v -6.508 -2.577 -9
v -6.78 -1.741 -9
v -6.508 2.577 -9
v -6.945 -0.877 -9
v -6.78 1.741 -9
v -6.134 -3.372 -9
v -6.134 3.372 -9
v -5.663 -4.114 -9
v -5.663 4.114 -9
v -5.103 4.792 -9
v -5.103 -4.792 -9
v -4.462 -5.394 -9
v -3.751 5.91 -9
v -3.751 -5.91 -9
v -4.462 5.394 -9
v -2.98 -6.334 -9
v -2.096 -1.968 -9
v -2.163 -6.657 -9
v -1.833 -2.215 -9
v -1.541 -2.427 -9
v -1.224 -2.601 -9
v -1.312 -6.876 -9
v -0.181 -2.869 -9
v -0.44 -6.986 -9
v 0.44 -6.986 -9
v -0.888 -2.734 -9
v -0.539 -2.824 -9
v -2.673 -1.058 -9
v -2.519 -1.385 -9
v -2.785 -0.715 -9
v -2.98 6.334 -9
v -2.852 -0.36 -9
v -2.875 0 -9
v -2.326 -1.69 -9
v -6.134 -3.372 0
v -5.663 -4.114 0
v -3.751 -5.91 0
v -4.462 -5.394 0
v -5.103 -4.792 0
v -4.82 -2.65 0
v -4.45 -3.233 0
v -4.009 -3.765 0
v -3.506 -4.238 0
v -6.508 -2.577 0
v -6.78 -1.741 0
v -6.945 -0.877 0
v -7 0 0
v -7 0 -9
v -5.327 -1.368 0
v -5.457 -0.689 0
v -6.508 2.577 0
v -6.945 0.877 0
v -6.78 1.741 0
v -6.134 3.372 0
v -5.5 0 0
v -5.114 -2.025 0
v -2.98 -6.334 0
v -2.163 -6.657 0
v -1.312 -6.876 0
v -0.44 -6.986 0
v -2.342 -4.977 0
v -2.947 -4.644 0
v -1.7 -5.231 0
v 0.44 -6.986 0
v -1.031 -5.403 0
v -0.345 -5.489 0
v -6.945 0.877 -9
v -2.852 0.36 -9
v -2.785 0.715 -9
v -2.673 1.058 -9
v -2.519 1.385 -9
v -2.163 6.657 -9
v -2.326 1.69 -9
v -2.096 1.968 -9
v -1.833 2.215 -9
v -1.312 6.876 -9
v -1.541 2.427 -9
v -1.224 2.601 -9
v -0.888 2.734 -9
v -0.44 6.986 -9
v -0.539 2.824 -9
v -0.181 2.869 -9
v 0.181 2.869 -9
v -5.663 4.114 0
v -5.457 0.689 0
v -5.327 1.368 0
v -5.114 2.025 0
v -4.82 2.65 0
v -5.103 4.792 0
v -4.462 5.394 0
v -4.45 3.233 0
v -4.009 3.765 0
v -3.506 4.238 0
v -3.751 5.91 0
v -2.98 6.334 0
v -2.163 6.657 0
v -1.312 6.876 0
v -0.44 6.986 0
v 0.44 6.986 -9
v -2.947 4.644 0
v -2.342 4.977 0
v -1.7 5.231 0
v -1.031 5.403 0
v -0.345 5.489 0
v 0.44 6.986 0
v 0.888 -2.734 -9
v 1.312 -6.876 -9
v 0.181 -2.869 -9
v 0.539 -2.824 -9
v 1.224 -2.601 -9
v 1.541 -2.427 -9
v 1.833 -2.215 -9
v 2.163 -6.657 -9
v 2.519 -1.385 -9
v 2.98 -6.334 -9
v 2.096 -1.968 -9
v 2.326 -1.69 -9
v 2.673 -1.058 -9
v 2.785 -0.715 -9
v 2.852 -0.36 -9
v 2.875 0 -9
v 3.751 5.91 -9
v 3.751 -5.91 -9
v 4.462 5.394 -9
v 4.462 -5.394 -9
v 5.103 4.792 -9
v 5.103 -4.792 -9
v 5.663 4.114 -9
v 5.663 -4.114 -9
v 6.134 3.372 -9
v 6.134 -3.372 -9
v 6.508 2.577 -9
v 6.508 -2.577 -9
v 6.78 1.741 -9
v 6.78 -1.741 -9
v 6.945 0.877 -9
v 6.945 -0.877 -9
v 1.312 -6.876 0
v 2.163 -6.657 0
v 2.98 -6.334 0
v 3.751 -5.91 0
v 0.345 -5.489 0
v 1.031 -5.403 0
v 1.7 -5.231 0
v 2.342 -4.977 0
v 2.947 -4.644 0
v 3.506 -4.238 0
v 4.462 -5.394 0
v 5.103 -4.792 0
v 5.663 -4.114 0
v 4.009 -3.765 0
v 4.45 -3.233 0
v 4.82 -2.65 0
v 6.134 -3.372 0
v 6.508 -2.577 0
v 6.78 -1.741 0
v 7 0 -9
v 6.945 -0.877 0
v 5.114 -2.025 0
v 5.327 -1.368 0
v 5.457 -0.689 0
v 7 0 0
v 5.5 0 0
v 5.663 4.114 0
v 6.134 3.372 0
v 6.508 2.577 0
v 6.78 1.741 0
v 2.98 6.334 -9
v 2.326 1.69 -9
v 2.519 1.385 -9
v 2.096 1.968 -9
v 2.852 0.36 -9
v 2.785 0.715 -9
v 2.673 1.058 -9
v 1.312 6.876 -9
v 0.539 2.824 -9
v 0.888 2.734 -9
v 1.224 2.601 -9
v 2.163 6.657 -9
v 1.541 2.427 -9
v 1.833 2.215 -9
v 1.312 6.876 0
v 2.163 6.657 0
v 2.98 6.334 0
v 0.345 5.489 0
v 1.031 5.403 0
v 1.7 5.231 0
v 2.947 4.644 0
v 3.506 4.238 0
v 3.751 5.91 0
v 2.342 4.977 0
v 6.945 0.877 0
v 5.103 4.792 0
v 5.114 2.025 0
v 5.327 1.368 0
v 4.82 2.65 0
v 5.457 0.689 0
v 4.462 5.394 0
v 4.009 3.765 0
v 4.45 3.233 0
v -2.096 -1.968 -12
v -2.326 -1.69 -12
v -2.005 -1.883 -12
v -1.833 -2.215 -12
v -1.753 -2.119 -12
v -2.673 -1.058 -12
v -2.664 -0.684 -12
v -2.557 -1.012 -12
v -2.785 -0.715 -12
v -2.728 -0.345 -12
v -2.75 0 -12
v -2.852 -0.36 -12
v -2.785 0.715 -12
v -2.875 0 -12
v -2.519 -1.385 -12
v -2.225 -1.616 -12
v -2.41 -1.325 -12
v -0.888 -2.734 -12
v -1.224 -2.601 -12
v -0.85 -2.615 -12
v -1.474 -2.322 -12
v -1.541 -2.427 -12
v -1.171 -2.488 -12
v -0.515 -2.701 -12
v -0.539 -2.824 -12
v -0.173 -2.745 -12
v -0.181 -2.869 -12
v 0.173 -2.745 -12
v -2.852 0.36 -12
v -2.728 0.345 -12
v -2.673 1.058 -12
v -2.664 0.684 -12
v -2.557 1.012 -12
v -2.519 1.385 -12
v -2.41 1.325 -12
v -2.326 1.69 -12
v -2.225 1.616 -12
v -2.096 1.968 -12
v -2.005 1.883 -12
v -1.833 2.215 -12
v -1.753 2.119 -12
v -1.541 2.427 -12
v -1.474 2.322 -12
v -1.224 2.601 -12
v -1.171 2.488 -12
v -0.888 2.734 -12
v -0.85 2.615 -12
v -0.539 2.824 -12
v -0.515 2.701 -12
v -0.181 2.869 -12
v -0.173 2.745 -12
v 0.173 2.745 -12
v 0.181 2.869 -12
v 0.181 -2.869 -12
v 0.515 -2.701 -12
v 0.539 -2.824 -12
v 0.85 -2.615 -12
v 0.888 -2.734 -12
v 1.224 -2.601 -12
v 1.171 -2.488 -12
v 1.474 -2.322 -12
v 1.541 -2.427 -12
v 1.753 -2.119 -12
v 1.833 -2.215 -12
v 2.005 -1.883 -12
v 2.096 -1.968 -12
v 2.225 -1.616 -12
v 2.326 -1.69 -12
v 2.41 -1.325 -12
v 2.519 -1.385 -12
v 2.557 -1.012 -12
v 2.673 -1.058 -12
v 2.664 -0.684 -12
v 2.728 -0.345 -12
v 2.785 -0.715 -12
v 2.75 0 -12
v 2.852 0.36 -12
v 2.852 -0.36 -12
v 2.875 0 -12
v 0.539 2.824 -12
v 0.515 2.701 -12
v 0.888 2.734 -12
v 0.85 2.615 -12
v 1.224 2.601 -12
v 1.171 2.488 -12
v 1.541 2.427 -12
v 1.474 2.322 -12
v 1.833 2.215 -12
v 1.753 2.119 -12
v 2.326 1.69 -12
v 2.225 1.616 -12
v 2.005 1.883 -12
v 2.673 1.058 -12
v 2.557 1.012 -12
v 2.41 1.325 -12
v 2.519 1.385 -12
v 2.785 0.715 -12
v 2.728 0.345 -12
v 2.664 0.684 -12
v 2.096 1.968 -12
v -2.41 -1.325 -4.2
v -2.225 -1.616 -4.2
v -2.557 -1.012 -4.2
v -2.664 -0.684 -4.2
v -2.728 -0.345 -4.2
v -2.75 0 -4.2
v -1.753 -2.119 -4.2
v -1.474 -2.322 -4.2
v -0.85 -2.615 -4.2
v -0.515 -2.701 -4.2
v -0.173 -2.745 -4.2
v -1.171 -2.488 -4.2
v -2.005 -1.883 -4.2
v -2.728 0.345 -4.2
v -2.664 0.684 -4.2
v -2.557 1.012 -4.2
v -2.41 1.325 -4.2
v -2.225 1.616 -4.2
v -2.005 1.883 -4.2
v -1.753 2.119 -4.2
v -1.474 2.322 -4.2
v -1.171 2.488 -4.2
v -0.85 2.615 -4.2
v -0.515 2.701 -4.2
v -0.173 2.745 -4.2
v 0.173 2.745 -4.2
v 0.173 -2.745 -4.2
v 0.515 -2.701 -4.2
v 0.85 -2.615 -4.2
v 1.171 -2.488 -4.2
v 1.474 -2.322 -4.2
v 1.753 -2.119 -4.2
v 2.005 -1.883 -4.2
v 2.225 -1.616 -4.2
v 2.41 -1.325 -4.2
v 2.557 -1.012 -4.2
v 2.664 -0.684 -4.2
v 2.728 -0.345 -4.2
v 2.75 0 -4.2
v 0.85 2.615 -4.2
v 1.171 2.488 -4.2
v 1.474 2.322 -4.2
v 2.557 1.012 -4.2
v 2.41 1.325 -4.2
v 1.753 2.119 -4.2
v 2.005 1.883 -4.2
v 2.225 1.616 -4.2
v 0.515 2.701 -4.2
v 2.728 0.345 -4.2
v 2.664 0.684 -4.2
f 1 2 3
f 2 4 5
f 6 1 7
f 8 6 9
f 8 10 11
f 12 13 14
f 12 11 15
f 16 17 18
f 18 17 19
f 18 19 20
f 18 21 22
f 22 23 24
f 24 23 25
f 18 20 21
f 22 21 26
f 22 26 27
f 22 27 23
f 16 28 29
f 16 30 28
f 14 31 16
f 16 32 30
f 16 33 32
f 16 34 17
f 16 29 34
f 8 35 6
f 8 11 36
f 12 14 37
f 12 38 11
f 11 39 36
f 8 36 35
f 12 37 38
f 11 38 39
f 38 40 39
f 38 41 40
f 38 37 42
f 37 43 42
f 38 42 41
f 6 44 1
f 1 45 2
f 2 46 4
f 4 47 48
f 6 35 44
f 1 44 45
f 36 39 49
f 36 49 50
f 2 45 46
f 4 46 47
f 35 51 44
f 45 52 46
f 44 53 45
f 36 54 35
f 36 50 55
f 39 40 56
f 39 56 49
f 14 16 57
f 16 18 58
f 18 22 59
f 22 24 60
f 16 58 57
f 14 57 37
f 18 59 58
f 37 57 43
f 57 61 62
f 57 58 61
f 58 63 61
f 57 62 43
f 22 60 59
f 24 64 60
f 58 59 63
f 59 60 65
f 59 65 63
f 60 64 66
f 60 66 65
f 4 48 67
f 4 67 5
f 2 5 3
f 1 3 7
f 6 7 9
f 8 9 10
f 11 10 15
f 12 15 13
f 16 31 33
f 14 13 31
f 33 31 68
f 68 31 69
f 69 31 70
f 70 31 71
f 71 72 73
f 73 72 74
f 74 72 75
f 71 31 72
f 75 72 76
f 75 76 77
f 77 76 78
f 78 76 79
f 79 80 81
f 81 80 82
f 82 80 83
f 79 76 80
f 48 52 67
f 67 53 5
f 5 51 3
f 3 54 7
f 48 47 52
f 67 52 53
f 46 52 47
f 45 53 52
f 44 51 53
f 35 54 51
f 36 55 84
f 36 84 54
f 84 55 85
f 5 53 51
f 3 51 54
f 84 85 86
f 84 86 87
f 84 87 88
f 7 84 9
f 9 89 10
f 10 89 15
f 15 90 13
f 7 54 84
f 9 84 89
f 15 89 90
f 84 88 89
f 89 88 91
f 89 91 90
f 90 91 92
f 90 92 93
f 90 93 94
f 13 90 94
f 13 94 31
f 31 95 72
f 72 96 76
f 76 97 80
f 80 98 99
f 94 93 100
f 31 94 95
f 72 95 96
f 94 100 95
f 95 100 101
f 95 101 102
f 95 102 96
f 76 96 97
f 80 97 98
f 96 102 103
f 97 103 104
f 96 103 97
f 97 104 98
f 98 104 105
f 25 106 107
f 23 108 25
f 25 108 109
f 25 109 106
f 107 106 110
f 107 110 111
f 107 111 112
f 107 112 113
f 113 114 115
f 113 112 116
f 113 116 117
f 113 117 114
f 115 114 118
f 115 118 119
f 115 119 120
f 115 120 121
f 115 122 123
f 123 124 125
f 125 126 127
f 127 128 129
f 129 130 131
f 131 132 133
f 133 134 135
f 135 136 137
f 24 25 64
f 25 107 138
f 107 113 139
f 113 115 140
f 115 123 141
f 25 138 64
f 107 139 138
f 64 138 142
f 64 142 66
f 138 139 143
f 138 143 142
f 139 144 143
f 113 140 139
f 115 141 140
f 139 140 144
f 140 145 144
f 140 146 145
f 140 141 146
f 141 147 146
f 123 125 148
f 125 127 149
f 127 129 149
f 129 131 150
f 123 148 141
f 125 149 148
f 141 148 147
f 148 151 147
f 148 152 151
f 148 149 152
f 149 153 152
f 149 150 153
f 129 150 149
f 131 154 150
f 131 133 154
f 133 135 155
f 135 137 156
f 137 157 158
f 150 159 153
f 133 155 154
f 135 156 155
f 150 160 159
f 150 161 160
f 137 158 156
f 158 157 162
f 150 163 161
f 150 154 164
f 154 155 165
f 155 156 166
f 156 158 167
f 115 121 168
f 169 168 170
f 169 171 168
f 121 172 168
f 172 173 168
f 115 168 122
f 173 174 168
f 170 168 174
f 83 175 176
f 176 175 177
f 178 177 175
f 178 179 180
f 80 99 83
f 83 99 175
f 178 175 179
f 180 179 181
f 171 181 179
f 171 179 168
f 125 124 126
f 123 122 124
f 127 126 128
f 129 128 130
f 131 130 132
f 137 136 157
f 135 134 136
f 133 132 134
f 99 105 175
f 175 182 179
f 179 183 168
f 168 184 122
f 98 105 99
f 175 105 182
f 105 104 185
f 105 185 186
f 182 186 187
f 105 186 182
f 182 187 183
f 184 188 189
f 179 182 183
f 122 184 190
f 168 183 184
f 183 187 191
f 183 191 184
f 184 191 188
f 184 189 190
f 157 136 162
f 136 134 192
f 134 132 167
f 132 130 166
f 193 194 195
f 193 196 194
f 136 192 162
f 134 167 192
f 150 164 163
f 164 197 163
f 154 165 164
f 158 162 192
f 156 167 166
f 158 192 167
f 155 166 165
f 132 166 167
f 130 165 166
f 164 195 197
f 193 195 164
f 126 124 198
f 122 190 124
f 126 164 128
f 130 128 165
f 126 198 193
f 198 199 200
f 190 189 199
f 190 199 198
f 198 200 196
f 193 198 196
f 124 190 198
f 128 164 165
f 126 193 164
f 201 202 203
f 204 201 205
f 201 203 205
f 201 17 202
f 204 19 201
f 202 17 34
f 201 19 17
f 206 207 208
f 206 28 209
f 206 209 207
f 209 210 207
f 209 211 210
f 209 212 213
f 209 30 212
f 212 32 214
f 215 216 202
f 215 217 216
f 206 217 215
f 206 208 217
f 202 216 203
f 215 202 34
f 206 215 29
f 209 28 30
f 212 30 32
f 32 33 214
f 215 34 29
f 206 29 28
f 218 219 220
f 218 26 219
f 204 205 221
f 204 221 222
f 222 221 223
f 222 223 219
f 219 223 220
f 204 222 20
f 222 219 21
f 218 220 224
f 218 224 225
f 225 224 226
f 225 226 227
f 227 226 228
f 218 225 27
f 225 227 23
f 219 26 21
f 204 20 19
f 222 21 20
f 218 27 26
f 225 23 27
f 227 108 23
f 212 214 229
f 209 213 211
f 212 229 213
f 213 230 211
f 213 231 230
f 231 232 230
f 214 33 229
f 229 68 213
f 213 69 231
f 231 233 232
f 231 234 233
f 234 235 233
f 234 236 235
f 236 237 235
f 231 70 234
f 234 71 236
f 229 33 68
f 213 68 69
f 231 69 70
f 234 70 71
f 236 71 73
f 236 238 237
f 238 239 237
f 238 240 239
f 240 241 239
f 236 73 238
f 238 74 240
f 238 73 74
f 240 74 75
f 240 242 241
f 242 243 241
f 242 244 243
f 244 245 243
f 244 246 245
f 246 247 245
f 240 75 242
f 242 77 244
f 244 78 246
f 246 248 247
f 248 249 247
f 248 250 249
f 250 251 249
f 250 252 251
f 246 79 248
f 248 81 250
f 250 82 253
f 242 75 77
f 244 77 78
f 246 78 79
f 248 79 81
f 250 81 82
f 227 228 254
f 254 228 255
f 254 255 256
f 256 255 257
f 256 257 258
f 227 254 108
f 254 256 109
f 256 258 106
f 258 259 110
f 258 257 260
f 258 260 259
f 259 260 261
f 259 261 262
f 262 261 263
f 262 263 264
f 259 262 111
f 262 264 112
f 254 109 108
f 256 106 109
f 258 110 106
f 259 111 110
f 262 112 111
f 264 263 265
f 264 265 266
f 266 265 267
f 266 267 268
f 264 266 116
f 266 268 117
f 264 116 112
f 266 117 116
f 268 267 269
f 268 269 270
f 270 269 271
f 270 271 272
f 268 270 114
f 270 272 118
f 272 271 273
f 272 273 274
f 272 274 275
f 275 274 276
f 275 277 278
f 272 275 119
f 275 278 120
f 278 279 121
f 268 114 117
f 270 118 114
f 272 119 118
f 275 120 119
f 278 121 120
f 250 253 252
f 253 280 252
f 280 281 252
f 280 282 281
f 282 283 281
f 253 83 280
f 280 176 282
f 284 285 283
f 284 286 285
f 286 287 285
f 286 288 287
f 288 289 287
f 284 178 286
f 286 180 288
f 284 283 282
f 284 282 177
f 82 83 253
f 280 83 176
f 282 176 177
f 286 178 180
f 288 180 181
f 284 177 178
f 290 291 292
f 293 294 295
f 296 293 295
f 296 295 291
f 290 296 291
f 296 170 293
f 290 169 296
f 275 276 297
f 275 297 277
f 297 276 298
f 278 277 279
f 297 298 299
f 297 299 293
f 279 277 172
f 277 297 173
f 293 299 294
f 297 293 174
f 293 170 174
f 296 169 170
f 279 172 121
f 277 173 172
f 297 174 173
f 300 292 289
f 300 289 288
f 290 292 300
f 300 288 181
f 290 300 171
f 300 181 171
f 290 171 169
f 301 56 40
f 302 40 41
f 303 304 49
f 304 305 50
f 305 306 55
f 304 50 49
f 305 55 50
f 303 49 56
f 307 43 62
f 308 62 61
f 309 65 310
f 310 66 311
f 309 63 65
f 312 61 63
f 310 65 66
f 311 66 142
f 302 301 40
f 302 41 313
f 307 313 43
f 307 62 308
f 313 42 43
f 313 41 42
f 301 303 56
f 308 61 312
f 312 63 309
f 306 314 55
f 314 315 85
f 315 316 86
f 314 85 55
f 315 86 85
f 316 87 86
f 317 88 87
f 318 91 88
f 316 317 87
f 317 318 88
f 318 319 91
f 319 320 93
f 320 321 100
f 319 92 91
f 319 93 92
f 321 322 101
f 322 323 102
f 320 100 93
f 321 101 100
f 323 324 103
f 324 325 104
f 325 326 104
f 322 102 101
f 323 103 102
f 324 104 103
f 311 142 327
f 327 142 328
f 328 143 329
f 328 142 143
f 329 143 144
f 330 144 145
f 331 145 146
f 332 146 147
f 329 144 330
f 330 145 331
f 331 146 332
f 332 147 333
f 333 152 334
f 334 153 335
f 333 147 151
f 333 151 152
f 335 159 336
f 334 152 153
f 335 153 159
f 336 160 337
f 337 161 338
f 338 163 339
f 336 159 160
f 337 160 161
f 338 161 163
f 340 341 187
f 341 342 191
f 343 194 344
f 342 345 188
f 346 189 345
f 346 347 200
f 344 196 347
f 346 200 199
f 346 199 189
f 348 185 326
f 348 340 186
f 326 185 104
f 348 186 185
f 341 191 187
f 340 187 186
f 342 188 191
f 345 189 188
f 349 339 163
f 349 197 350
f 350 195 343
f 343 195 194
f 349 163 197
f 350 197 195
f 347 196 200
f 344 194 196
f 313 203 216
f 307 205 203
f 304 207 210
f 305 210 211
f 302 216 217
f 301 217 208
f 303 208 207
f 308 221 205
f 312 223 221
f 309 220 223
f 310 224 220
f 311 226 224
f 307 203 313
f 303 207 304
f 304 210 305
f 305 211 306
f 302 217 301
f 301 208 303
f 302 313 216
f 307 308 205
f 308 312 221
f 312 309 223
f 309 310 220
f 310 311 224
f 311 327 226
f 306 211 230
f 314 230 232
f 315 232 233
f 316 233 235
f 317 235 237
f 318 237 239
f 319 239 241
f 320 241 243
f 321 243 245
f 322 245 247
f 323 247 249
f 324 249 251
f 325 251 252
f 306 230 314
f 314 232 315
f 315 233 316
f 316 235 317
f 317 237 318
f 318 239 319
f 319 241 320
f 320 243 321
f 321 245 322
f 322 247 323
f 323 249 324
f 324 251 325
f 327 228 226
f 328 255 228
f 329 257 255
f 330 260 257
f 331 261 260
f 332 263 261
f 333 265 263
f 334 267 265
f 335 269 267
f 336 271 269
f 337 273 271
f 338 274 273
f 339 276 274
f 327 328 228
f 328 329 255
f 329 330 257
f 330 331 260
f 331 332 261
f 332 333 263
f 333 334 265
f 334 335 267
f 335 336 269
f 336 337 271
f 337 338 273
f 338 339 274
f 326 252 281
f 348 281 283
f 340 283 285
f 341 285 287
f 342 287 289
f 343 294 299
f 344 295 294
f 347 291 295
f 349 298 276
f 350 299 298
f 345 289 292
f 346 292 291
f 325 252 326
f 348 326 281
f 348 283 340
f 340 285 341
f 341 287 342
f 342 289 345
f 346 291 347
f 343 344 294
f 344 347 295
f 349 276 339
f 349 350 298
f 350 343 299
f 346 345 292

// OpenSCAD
$fn = 50;

difference() {
	union() {
		translate(v = [0, 0, -9.0]) {
			cylinder(h = 9, r = 7.0);
		}
		#translate(v = [0, 0, -12.0]) {
			cylinder(h = 12, r = 2.875);
		}
	}
	union() {
		translate(v = [0, 0, 0]) {
			rotate(a = [0, 0, 0]) {
				difference() {
					union() {
						translate(v = [0, 0, -12.0]) {
							cylinder(h = 12, r = 2.25);
						}
						translate(v = [0, 0, -4.2]) {
							cylinder(h = 4.2, r1 = 2.75, r2 = 5.5);
						}
						translate(v = [0, 0, -12.0]) {
							cylinder(h = 12, r = 2.75);
						}
						translate(v = [0, 0, -12.0]) {
							cylinder(h = 12, r = 2.25);
						}
					}
					union();
				}
			}
		}
	}
}
